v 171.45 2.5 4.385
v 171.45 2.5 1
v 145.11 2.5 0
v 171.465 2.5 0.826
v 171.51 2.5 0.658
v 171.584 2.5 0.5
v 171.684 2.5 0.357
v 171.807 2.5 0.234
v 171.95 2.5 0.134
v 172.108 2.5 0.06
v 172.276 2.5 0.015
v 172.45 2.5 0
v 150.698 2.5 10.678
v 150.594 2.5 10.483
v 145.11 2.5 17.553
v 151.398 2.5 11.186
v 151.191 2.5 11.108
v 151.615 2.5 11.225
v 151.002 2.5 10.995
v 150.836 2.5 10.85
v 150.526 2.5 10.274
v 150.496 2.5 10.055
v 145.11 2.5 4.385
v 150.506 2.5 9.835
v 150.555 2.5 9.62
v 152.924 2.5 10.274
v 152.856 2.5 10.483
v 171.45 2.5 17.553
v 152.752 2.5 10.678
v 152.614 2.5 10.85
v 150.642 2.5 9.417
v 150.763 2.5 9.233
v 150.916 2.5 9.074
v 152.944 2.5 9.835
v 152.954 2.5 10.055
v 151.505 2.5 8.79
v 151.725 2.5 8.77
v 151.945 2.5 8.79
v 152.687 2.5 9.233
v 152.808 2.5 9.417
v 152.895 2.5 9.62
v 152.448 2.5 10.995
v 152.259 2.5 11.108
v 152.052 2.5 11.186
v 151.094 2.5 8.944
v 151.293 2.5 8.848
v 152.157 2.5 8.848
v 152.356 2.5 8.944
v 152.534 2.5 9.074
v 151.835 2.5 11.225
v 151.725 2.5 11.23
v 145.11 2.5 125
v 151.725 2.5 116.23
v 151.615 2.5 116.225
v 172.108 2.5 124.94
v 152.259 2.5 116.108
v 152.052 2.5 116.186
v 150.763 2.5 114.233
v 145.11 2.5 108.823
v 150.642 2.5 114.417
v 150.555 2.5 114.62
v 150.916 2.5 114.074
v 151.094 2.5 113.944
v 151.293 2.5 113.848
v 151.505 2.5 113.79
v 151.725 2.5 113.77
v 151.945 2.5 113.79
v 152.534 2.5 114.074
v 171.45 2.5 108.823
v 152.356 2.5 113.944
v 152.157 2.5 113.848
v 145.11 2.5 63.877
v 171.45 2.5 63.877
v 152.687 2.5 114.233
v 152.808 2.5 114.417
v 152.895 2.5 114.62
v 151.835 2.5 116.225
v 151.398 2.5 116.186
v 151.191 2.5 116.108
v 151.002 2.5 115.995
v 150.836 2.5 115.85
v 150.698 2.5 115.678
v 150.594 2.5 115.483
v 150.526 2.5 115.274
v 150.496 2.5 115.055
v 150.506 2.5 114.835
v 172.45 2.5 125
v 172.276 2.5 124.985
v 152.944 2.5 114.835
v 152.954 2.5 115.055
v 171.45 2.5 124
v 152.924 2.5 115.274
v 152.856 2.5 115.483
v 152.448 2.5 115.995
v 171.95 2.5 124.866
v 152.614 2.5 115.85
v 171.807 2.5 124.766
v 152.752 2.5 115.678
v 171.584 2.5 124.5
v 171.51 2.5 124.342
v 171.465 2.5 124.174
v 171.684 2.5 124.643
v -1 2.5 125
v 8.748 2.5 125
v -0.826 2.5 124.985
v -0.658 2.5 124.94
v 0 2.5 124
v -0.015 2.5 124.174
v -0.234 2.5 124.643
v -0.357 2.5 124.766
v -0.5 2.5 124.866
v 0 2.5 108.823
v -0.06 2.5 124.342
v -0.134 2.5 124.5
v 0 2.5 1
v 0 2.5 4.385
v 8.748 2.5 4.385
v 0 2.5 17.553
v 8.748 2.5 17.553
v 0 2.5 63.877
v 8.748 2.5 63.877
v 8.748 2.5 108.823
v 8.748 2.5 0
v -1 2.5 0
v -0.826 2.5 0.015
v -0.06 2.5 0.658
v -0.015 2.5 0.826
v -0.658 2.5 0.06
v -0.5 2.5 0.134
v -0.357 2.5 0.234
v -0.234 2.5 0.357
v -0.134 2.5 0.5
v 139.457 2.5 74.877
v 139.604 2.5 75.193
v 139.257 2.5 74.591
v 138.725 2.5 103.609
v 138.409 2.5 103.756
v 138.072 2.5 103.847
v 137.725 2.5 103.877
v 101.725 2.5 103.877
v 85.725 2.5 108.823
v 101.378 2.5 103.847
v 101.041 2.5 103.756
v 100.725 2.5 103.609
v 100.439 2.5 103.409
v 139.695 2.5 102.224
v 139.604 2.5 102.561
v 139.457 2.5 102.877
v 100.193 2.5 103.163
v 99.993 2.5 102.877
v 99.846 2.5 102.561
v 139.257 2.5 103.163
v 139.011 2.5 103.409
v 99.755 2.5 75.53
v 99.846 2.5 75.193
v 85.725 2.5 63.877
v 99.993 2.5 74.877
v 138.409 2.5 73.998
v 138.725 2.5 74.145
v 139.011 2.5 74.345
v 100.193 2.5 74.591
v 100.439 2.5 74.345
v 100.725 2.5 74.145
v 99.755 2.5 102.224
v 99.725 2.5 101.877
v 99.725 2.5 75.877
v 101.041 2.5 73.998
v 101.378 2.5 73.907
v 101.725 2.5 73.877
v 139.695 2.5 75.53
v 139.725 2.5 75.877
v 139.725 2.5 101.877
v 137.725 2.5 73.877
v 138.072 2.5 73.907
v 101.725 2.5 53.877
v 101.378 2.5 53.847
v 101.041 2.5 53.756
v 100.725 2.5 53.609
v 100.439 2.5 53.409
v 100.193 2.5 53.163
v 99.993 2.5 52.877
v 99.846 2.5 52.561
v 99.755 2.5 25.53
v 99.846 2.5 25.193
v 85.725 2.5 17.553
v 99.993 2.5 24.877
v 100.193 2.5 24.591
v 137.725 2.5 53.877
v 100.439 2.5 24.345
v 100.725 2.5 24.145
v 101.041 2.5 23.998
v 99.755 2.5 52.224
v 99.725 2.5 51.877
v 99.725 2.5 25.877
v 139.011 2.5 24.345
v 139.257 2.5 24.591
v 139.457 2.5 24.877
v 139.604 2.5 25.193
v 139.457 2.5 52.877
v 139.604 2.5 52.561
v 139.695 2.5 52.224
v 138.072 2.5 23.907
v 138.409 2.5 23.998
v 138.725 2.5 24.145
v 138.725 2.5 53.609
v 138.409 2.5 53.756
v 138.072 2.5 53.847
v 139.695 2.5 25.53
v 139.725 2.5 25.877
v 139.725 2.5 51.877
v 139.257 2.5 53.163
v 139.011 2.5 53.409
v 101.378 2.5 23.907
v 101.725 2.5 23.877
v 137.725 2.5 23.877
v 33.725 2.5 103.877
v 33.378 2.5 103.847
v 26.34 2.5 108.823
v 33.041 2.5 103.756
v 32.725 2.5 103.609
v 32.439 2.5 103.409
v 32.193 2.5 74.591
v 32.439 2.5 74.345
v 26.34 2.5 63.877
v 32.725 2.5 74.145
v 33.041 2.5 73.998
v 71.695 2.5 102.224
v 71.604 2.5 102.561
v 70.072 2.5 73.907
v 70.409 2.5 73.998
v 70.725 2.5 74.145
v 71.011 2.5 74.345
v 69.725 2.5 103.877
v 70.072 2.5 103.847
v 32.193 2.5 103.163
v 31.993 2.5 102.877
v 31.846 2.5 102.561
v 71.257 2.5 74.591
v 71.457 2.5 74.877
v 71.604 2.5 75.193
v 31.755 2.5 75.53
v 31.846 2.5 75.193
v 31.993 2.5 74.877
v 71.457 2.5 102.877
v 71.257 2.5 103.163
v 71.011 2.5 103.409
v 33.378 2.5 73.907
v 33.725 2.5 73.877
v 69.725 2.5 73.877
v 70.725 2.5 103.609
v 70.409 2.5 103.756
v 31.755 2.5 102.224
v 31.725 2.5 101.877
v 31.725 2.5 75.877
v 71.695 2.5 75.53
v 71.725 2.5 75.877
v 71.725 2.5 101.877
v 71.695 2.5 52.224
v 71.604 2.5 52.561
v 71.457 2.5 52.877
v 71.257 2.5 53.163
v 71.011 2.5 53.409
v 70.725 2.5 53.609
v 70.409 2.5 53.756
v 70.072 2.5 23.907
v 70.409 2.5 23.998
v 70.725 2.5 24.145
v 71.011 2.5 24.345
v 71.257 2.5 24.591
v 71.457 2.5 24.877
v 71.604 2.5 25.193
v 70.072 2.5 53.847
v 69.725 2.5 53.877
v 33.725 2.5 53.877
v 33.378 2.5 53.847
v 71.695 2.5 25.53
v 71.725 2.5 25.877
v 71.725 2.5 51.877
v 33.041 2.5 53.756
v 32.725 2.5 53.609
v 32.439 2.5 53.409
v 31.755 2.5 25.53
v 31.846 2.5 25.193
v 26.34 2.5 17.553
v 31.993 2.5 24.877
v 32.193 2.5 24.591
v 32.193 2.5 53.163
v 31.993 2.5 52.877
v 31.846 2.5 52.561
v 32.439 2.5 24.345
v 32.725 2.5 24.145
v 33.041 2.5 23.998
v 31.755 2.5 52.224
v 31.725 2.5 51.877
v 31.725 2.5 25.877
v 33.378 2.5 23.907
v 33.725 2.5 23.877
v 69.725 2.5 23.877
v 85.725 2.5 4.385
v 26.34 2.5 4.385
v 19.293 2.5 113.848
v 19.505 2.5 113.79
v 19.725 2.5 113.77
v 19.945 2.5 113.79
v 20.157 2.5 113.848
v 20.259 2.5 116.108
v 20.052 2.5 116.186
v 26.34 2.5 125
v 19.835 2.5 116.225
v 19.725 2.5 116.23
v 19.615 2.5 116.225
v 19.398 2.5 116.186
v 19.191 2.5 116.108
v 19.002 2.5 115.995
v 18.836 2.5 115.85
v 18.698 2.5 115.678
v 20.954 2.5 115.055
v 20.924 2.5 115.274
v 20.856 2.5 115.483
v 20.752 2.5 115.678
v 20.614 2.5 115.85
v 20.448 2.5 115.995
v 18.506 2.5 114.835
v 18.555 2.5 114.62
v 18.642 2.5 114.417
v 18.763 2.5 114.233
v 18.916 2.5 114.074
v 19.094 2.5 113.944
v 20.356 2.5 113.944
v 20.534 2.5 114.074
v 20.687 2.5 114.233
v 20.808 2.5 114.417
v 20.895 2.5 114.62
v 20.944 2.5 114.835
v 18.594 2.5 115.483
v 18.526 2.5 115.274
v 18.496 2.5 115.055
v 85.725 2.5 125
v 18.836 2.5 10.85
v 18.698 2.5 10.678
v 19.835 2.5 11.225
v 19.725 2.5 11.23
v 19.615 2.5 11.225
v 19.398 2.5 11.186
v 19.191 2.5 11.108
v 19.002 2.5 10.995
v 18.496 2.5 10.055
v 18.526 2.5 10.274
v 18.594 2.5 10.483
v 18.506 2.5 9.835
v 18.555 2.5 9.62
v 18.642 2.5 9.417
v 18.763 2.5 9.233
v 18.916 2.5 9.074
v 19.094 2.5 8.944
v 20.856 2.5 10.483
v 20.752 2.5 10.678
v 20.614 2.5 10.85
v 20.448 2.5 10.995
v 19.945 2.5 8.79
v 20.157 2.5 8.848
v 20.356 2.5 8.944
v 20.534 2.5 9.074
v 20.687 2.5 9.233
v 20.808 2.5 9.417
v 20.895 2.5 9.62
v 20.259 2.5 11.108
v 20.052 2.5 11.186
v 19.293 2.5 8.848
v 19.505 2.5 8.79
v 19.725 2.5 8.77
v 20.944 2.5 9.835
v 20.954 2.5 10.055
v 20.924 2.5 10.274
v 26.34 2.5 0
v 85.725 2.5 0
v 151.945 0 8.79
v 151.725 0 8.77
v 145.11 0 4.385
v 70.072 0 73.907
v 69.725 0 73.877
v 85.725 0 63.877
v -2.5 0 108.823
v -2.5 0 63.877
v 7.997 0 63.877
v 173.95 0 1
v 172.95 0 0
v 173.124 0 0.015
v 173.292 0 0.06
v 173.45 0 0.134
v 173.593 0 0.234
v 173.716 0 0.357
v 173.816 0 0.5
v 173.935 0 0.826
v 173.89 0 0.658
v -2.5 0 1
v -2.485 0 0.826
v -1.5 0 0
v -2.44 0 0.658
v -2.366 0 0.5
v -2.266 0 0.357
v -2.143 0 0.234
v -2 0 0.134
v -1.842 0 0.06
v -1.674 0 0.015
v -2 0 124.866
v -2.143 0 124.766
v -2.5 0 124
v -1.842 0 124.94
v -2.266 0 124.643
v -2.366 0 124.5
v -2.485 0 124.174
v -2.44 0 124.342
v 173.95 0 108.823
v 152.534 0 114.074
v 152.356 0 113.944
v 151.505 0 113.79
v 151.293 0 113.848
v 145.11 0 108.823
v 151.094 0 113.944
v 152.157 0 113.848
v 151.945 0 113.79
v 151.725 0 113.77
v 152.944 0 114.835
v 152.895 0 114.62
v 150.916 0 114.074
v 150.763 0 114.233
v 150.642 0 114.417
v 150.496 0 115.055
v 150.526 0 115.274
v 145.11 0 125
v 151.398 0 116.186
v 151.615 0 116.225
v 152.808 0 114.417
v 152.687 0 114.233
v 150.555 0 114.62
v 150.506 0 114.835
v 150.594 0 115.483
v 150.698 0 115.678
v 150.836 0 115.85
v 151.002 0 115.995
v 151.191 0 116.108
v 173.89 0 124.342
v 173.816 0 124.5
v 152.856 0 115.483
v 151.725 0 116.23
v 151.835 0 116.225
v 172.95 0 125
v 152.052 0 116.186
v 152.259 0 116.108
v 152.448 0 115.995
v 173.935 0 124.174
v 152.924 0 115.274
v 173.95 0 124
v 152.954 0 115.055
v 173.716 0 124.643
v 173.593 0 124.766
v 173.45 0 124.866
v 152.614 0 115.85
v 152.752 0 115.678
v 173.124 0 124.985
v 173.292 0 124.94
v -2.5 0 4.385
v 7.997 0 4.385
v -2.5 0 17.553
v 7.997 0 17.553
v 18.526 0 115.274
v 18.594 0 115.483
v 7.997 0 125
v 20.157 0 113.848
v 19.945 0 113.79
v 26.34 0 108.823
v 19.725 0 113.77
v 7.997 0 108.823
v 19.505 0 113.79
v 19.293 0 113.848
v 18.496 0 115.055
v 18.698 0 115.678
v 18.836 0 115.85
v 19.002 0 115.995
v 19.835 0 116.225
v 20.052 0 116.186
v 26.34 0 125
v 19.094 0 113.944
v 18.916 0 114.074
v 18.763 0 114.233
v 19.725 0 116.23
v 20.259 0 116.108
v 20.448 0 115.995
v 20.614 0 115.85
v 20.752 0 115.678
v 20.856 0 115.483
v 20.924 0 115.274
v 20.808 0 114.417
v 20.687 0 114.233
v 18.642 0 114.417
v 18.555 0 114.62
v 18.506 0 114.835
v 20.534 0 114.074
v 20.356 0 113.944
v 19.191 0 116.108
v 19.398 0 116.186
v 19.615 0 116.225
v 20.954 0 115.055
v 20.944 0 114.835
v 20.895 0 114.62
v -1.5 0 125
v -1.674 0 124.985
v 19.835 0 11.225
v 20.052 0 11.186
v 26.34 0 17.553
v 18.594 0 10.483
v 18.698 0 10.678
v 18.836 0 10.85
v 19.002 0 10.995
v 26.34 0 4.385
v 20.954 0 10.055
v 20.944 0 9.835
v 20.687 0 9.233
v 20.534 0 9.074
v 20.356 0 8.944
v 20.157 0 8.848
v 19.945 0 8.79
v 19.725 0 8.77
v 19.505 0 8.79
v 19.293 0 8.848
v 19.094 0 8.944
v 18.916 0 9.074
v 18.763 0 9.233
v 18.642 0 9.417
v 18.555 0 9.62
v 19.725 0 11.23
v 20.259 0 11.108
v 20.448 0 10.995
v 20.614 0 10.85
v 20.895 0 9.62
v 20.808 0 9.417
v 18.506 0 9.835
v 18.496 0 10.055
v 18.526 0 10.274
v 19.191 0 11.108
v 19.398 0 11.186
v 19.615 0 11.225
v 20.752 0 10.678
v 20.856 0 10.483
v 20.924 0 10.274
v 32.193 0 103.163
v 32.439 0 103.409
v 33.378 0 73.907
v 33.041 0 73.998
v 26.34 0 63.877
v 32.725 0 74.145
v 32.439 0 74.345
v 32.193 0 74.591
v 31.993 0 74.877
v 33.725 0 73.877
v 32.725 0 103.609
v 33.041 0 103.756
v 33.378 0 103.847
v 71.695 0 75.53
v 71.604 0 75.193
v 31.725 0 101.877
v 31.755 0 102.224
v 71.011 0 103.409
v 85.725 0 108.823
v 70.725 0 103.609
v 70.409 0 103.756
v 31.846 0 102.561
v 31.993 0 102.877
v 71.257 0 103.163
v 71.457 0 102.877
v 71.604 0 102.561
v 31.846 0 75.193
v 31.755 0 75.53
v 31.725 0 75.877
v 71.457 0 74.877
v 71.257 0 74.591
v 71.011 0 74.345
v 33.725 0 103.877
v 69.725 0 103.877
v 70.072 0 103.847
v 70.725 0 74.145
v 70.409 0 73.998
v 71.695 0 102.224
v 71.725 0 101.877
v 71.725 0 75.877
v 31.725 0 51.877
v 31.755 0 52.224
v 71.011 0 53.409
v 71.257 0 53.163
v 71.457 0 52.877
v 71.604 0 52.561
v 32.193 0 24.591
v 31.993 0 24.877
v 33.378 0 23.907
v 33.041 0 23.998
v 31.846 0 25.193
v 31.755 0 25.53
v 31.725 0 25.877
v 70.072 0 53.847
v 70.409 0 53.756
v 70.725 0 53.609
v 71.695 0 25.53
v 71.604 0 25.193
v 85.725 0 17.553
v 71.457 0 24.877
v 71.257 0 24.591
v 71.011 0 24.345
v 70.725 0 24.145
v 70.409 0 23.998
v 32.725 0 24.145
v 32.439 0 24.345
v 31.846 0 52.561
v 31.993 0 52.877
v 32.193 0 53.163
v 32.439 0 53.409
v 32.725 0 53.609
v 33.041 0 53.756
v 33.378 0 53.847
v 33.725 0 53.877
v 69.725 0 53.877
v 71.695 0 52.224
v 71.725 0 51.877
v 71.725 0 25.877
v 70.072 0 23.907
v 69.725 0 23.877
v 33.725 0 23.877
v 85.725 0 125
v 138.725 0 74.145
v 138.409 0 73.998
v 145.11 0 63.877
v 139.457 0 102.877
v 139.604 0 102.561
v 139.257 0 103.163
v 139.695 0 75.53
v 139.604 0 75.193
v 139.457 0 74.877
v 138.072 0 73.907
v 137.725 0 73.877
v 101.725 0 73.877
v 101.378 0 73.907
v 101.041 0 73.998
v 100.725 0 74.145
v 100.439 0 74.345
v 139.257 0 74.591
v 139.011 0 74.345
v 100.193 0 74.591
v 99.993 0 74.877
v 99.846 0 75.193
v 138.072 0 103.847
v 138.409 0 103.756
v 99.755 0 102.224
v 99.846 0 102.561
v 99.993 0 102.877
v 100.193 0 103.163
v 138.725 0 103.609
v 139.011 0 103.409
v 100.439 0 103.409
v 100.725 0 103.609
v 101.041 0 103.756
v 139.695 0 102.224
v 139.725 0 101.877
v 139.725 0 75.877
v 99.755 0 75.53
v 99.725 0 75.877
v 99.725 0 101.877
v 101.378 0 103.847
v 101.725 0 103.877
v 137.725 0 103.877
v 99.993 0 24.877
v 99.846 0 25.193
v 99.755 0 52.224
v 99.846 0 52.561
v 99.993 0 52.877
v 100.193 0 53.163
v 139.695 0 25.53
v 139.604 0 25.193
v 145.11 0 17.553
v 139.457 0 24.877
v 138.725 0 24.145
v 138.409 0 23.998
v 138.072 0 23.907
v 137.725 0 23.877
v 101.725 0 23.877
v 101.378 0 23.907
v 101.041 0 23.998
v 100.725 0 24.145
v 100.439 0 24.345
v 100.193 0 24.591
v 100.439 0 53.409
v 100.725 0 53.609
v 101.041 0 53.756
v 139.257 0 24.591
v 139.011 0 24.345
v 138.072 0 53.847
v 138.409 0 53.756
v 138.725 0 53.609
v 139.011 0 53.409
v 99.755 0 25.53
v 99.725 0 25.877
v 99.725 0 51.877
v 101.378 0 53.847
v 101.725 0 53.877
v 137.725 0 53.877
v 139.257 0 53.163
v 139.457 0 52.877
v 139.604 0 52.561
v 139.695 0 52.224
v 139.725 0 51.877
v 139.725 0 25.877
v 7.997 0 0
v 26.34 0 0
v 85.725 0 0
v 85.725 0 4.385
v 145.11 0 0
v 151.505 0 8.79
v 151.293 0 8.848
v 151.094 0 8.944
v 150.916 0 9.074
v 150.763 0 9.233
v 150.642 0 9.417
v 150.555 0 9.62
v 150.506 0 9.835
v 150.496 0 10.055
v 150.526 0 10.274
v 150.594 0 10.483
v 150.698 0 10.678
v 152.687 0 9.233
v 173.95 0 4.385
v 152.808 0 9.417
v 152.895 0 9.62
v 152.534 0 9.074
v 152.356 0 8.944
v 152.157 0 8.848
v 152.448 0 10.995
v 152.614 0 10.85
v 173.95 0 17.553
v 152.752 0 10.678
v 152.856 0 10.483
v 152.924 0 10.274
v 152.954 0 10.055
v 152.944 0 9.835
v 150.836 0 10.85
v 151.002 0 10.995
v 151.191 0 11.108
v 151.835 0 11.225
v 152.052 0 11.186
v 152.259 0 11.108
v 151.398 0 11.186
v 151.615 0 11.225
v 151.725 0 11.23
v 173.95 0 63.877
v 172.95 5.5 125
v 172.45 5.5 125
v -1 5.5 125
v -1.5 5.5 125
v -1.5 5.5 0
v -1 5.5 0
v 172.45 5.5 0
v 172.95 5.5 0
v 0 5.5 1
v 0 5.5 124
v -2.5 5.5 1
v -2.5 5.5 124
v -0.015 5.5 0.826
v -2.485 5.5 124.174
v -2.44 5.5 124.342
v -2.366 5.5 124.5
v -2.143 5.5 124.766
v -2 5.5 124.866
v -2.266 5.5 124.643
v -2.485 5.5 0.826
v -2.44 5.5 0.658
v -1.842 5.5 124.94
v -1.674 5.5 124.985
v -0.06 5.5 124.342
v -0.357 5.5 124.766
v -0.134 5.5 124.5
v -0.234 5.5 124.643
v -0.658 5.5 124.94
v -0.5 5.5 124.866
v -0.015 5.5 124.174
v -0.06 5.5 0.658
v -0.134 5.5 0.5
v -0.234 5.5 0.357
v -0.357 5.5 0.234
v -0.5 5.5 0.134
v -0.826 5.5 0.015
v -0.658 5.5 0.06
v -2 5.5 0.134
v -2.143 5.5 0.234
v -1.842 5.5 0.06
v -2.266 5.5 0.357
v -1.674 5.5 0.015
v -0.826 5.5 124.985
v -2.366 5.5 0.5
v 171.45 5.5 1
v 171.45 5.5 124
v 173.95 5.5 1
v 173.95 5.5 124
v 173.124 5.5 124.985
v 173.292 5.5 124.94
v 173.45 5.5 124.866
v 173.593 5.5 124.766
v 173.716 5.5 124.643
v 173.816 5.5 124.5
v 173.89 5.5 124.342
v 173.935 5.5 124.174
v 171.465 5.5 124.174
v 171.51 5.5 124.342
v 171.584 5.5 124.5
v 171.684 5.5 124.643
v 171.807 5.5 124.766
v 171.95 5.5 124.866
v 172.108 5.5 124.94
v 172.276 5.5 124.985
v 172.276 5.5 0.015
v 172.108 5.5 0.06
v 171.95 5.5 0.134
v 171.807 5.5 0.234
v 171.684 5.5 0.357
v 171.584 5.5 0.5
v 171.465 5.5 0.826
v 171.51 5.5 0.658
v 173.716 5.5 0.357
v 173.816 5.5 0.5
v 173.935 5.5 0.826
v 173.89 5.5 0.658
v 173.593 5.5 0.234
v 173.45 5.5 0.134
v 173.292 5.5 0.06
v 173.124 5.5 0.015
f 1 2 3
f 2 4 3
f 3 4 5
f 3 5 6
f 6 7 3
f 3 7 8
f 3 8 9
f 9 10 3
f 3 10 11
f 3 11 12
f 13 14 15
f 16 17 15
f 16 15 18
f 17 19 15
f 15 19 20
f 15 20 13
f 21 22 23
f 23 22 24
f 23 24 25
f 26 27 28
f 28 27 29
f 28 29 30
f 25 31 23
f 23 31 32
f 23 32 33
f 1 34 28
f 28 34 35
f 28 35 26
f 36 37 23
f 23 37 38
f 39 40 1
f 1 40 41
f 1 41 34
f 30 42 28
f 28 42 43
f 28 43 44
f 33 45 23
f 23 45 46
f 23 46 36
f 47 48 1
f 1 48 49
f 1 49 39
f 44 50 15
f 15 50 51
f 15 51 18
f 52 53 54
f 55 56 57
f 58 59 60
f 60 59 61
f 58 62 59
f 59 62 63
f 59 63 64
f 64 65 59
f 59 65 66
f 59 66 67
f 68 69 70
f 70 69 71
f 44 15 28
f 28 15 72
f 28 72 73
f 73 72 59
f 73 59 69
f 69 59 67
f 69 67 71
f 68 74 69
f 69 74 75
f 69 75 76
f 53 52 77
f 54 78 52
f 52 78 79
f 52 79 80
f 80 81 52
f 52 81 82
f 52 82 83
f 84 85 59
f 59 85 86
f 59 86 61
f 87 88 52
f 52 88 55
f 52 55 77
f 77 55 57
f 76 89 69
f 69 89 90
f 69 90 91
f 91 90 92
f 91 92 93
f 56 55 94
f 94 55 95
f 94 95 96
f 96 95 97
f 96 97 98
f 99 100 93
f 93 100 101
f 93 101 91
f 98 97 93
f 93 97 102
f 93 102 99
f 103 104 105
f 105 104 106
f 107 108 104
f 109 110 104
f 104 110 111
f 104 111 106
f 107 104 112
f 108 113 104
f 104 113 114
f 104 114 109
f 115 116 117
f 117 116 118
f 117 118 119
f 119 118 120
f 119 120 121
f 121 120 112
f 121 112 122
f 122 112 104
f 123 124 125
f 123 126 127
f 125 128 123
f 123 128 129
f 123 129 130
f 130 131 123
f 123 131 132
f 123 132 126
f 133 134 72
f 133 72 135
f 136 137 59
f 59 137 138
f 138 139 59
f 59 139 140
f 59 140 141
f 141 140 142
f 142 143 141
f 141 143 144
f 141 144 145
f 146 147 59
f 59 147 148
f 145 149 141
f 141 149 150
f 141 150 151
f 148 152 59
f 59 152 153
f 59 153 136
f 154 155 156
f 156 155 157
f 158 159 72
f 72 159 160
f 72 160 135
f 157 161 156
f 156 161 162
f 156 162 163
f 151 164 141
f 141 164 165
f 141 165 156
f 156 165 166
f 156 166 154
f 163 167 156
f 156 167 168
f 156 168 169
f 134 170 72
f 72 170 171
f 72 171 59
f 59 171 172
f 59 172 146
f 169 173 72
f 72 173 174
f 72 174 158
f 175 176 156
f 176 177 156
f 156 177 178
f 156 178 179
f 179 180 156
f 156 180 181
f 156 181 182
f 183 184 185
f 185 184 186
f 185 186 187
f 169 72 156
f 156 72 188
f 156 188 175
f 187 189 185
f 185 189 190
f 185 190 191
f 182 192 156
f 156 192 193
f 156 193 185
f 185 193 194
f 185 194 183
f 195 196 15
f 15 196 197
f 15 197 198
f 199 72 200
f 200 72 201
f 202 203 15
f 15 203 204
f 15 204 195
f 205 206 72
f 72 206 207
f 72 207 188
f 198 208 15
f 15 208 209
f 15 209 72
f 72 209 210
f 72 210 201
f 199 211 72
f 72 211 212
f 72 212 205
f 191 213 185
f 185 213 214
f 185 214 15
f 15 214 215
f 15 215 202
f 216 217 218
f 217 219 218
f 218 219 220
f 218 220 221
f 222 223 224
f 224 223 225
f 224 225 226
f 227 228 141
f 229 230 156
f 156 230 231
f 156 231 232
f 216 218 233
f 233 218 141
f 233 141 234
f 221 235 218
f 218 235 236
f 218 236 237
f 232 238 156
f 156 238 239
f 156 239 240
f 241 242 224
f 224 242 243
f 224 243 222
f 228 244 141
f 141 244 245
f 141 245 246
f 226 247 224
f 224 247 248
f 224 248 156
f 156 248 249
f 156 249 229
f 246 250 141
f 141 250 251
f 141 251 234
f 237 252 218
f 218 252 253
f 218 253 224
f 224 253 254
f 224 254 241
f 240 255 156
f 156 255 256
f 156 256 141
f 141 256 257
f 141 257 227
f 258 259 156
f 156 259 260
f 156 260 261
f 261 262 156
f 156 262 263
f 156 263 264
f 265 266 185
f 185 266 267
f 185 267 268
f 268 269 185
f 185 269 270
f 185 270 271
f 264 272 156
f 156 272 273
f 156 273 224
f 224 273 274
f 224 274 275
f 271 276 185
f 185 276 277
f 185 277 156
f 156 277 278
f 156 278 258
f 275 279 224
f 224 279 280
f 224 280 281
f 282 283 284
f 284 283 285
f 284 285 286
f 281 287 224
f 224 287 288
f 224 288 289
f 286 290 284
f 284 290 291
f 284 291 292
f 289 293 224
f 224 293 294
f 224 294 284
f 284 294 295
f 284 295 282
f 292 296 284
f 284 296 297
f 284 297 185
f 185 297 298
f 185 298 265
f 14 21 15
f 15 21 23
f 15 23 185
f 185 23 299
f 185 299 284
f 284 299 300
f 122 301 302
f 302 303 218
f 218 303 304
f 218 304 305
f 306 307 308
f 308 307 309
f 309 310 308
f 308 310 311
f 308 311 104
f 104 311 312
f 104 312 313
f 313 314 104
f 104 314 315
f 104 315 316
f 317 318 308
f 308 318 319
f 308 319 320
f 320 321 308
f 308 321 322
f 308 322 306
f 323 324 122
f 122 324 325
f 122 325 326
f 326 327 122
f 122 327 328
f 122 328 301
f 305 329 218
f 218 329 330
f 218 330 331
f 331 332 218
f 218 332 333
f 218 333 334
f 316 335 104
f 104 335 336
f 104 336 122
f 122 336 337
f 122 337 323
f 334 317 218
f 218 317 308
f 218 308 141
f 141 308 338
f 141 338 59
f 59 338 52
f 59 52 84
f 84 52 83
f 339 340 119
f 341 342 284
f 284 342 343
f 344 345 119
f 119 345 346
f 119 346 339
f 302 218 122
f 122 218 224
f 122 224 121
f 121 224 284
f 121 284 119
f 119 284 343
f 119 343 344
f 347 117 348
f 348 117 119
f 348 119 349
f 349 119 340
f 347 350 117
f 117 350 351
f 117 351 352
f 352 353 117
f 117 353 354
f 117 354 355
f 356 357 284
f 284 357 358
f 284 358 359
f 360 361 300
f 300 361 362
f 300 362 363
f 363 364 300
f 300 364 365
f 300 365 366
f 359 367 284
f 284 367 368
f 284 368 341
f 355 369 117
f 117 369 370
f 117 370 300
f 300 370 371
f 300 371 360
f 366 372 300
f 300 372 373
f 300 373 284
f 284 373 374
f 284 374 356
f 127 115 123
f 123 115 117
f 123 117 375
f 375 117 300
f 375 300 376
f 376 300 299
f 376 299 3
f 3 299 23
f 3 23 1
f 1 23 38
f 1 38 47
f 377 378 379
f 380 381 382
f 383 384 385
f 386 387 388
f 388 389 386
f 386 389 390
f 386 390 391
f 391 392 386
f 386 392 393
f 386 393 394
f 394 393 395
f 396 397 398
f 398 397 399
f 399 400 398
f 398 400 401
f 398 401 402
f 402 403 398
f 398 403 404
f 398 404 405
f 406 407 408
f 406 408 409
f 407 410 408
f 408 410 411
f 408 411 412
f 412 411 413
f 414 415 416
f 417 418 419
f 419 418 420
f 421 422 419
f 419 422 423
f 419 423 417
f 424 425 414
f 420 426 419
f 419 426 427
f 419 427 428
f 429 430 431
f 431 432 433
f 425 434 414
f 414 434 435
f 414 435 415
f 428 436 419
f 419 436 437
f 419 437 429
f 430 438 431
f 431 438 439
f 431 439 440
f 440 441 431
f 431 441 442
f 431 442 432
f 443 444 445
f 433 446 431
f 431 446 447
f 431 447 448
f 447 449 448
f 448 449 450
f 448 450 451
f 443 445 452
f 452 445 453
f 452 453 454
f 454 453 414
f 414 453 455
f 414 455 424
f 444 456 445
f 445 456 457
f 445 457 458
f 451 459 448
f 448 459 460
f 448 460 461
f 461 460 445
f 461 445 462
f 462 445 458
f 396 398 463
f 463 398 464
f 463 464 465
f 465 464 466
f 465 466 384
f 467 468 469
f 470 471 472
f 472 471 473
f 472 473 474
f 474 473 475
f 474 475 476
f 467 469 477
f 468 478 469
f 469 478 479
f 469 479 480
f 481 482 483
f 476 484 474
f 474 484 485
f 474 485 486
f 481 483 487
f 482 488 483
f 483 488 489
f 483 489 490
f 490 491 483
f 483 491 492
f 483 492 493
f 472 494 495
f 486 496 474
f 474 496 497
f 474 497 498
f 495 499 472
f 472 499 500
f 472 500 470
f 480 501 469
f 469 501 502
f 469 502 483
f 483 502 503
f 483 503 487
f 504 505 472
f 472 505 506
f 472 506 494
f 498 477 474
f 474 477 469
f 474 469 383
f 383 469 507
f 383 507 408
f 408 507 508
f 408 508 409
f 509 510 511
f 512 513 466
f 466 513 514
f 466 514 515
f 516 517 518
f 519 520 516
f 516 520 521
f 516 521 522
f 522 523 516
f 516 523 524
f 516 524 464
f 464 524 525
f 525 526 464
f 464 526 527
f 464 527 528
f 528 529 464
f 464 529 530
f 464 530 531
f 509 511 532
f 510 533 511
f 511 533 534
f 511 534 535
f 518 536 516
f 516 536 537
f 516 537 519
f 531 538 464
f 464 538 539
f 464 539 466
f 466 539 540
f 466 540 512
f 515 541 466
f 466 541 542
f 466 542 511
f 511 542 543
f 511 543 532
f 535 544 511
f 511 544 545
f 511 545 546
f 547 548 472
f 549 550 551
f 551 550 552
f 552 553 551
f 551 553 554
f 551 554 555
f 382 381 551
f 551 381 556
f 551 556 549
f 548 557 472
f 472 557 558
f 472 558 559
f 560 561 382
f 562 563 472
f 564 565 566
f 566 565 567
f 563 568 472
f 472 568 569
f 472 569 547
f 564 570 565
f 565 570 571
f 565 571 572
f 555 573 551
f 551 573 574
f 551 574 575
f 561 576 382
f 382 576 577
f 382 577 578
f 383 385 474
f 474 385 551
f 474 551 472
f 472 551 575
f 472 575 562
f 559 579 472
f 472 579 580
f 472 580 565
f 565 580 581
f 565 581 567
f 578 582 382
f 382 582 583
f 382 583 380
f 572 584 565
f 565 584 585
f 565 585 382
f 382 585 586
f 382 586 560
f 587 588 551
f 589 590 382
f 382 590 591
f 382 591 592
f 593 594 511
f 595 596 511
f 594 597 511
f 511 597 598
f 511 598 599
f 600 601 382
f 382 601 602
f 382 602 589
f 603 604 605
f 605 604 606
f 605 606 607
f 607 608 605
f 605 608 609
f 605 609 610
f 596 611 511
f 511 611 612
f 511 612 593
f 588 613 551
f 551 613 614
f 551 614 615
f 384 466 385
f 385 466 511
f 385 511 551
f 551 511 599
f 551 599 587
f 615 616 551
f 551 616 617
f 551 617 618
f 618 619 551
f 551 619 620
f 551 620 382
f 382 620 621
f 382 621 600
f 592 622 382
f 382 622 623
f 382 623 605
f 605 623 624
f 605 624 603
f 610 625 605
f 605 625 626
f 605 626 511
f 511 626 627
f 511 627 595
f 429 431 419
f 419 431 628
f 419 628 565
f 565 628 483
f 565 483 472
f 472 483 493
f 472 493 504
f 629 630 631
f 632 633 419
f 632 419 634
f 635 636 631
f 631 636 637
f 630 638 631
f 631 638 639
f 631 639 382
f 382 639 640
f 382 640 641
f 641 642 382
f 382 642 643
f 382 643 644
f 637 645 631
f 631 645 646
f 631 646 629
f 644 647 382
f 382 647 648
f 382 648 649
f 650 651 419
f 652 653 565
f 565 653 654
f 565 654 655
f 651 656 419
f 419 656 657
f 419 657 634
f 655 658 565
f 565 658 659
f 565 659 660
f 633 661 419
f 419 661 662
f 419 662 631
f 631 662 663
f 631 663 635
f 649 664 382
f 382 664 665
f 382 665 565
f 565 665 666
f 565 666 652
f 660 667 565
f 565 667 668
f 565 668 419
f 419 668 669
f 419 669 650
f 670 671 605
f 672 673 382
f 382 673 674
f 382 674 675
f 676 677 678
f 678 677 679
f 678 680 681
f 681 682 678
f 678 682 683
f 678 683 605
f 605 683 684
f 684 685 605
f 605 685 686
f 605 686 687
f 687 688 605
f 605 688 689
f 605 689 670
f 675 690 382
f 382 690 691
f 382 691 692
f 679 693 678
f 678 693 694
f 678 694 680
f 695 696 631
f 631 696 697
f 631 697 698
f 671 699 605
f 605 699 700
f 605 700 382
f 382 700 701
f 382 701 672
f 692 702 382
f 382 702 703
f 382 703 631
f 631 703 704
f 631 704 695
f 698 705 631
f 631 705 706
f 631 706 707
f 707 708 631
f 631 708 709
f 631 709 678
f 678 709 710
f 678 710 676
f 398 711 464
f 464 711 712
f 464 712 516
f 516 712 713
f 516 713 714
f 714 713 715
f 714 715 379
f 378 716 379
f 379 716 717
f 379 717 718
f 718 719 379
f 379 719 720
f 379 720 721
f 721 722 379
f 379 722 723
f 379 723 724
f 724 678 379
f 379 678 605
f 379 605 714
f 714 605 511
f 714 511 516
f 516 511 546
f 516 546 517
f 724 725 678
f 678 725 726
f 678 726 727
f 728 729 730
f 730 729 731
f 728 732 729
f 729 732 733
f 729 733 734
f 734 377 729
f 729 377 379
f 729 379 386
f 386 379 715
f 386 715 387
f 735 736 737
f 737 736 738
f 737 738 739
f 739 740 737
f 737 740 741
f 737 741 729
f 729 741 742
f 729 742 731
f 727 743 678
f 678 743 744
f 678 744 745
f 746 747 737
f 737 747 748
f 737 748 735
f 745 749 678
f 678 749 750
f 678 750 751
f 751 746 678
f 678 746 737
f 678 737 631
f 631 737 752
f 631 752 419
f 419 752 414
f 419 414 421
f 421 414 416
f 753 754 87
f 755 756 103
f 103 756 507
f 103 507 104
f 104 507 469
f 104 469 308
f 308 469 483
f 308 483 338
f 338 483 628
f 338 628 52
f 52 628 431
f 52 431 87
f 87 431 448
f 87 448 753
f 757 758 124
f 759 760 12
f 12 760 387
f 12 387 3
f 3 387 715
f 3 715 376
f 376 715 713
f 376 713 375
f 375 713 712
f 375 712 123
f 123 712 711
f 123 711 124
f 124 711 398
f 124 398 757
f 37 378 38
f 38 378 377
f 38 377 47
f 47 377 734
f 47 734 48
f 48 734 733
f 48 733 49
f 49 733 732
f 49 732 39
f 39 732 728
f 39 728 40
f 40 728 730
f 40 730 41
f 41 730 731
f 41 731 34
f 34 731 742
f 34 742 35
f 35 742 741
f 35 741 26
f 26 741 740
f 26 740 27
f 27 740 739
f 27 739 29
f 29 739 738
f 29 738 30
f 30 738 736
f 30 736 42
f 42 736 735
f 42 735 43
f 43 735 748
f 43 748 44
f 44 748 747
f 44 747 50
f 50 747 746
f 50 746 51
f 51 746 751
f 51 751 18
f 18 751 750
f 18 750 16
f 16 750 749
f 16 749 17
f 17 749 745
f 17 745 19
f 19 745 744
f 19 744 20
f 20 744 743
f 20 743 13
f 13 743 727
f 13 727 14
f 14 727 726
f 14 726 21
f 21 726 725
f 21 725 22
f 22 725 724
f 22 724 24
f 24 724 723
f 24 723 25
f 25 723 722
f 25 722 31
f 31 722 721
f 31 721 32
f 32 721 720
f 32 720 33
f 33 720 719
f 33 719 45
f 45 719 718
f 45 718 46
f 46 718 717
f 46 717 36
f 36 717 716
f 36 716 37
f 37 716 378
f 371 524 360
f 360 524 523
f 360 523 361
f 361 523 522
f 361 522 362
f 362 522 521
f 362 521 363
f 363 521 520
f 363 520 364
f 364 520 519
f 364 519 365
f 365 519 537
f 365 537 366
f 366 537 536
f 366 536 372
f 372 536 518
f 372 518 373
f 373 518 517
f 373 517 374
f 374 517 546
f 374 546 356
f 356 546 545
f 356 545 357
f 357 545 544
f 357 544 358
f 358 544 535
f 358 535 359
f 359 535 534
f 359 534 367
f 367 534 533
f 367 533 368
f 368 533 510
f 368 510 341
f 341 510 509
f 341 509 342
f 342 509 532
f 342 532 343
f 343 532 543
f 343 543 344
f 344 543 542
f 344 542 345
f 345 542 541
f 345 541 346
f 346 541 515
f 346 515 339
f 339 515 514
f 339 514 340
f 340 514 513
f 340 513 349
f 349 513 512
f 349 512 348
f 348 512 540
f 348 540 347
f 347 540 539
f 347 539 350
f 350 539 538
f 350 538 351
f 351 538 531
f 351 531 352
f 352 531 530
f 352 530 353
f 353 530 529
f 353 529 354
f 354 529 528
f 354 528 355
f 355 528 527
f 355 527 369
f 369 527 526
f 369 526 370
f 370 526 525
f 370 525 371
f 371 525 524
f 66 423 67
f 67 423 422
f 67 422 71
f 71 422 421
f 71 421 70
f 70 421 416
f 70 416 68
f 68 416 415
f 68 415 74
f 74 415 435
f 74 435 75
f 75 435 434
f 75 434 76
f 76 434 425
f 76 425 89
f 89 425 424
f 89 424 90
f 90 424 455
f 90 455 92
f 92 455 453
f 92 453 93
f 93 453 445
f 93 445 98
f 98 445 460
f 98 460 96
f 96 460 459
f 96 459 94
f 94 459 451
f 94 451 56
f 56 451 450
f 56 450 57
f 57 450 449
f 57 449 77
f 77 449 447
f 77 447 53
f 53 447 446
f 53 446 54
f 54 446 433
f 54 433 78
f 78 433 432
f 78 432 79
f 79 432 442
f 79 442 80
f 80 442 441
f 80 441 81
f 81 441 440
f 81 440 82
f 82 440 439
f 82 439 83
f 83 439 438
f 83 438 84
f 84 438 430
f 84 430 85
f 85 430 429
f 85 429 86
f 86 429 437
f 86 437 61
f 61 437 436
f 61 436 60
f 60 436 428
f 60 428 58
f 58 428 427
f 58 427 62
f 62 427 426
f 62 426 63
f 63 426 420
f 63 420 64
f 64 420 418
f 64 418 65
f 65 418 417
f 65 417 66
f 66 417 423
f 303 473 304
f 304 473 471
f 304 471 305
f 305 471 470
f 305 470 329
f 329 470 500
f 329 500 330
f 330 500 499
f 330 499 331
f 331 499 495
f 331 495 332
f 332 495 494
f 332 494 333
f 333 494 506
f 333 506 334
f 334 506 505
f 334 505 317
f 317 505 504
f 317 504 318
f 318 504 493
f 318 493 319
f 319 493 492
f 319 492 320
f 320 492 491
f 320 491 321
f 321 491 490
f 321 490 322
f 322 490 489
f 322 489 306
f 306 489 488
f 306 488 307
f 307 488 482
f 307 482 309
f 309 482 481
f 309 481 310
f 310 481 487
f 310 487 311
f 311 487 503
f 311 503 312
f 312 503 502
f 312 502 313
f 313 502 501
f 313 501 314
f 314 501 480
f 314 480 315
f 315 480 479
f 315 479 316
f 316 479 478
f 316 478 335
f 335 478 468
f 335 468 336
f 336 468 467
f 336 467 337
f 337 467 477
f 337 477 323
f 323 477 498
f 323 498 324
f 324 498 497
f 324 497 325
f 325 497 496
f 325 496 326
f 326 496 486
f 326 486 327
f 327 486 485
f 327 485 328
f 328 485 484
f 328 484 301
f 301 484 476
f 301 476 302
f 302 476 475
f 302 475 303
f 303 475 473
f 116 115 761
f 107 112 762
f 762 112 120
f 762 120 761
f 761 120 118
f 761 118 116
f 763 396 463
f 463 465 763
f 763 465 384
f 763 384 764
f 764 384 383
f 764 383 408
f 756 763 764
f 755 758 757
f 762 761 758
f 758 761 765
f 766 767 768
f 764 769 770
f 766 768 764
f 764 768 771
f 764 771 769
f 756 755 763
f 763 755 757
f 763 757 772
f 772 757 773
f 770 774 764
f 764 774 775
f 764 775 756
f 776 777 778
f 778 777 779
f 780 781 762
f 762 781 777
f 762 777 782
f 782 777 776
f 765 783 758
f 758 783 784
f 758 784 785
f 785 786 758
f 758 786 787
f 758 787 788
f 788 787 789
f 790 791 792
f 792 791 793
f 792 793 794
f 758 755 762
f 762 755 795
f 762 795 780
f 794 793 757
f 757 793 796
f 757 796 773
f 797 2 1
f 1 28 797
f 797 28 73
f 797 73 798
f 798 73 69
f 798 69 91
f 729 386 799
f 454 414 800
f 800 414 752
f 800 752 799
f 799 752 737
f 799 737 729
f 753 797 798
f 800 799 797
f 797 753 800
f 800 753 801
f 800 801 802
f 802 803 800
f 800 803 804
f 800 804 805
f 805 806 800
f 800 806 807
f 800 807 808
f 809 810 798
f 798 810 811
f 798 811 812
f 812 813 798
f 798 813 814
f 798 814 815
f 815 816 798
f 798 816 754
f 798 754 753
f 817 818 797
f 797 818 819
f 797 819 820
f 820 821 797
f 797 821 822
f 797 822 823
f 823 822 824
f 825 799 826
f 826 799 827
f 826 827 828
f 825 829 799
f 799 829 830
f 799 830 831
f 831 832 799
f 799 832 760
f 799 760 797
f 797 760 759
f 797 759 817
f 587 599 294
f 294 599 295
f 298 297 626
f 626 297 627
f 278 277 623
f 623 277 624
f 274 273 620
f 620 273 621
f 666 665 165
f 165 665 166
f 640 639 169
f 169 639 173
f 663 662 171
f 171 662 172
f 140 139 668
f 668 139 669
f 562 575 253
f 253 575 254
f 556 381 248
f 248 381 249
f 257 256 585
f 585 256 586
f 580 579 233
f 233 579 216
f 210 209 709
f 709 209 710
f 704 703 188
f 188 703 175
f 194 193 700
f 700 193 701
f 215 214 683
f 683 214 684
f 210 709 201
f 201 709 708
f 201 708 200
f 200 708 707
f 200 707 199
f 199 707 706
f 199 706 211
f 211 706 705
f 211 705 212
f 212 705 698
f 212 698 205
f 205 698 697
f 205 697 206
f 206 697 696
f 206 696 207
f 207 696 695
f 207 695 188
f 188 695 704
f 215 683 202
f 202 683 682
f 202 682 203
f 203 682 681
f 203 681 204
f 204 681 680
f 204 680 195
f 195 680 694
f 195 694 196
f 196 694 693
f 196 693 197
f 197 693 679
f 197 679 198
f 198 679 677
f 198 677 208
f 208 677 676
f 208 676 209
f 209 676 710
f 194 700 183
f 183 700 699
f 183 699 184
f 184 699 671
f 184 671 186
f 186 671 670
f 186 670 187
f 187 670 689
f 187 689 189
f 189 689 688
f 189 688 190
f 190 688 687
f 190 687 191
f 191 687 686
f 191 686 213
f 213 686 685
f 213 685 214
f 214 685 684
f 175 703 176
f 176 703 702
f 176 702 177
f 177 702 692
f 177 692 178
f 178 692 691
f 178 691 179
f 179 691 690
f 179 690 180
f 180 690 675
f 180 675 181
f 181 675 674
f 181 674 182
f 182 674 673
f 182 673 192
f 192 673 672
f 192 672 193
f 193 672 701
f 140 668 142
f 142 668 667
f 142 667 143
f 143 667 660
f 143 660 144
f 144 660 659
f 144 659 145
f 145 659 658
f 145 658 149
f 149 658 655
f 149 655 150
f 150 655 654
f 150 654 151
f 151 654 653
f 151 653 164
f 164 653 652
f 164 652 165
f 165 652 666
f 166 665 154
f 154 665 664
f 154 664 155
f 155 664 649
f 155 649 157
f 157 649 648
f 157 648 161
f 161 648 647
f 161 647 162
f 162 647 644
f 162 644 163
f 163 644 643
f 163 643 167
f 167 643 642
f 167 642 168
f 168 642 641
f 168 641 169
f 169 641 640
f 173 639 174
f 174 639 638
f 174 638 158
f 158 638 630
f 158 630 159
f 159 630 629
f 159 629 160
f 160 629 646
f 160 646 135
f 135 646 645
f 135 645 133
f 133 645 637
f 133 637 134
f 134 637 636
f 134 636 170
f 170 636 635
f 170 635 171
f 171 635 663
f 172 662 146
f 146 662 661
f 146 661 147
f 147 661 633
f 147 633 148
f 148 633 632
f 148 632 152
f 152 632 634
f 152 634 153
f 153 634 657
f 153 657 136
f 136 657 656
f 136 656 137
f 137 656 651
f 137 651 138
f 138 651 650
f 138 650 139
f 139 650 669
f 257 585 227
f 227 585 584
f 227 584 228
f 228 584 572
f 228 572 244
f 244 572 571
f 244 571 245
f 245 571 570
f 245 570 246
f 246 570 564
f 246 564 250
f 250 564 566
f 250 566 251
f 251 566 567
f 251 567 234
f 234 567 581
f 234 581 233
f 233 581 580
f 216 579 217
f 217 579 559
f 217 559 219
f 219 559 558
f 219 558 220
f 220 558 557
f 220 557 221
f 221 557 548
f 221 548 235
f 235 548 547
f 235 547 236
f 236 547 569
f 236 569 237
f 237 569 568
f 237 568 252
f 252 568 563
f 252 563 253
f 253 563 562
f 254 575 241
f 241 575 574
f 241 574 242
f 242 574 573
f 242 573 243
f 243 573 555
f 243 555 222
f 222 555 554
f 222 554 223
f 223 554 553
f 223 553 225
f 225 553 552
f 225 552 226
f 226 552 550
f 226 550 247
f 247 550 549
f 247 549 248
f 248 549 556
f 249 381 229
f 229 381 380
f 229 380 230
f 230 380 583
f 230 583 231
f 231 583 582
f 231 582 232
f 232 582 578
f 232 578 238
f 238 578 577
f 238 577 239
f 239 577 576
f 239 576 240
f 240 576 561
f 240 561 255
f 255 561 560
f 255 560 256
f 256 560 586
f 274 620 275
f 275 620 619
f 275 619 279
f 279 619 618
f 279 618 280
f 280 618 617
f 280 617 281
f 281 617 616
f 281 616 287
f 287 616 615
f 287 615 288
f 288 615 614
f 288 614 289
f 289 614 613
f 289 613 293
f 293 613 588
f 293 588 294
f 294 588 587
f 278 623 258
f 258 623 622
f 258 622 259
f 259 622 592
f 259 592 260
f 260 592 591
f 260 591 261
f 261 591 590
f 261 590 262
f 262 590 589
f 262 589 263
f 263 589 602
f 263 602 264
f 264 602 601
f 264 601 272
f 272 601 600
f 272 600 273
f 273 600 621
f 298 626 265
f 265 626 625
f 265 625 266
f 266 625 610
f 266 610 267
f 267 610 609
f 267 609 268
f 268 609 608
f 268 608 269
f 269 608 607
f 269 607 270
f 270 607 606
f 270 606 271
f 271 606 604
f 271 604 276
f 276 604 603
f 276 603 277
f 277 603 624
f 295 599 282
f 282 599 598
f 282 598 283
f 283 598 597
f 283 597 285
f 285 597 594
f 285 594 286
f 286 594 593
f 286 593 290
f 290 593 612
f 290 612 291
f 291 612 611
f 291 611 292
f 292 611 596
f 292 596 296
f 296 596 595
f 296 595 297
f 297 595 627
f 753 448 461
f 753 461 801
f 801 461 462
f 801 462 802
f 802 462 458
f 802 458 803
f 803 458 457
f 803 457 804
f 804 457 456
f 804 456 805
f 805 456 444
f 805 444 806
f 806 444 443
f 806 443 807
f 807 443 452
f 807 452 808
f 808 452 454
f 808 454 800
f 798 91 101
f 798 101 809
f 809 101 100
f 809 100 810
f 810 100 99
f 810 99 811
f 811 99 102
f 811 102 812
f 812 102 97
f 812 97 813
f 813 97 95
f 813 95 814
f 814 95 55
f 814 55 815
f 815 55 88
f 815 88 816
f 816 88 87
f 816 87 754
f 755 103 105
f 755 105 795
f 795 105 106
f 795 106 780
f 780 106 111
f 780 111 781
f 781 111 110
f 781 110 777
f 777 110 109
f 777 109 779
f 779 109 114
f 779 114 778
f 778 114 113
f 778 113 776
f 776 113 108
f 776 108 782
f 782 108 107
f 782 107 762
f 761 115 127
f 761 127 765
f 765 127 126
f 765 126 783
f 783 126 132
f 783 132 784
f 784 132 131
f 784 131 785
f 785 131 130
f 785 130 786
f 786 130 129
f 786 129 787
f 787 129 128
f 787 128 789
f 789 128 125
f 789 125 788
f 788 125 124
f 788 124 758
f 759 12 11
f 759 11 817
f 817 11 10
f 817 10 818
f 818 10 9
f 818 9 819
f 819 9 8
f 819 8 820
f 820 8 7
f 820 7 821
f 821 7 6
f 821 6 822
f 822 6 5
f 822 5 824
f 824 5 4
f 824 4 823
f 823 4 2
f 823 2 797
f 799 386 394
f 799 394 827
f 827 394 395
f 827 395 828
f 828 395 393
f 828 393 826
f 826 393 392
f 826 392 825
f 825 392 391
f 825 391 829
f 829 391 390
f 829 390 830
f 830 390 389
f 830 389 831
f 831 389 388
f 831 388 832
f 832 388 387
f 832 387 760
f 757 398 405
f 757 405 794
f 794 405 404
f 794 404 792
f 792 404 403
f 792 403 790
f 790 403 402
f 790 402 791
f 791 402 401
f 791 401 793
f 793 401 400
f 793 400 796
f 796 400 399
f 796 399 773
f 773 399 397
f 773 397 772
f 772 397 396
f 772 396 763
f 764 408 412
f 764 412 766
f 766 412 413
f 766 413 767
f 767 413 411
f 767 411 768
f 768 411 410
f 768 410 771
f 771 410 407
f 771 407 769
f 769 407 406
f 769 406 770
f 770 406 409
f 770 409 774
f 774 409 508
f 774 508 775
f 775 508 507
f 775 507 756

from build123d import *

# Parameters (mm, degrees)
SKETCH1_W                = 171.45
SKETCH1_H                = 125
SKETCH1_R                = 1.23
BOSS_EXTRUDE1_DEPTH      = 2.5
BOSS_EXTRUDE2_DEPTH      = 3
BOSS_EXTRUDE2_DEPTH_BACK = 2.5
SKETCH2_W                = 2.5
SKETCH2_H                = 125
CUT_EXTRUDE1_DEPTH       = 215.225587874
CUT_EXTRUDE1_DEPTH_BACK  = 215.225587874
SKETCH3_W                = 40
SKETCH3_H                = 30
FILLET1_R                = 2
FILLET2_R                = 1


with BuildPart() as part:
    # Sketch1 → Boss-Extrude1 (new body)
    with BuildSketch(Plane(origin=(0, 0, 0), x_dir=(1, 0, 0), z_dir=(0, 1, 0))):
        with Locations((85.725, -62.5)):
            Rectangle(SKETCH1_W, SKETCH1_H)
        with Locations(Location((19.725, -10, 0), (0, 0, 270))):
            Circle(SKETCH1_R, mode=Mode.SUBTRACT)
        with Locations(Location((151.725, -10, 0), (0, 0, 270))):
            Circle(SKETCH1_R, mode=Mode.SUBTRACT)
        with Locations(Location((19.725, -115, 0), (0, 0, 270))):
            Circle(SKETCH1_R, mode=Mode.SUBTRACT)
        with Locations(Location((151.725, -115, 0), (0, 0, 270))):
            Circle(SKETCH1_R, mode=Mode.SUBTRACT)
    extrude(amount=BOSS_EXTRUDE1_DEPTH)

    # Sketch2 → Boss-Extrude2 (add, two sides: drawn at the far end of the back side and taken through both)
    with BuildSketch(Plane(origin=(0, 2.5, 0), x_dir=(1, 0, 0), z_dir=(0, 1, 0)).offset(-BOSS_EXTRUDE2_DEPTH_BACK)):
        with Locations((-1.25, -62.5)):
            Rectangle(SKETCH2_W, SKETCH2_H)
        with Locations((172.7, -62.5)):
            Rectangle(SKETCH2_W, SKETCH2_H)
    extrude(amount=BOSS_EXTRUDE2_DEPTH + BOSS_EXTRUDE2_DEPTH_BACK)

    # Sketch3 → Cut-Extrude1 (cut, two sides: drawn at the far end of the back side and taken through both)
    with BuildSketch(Plane(origin=(0, 2.5, 0), x_dir=(1, 0, 0), z_dir=(0, 1, 0)).offset(-CUT_EXTRUDE1_DEPTH_BACK)):
        with Locations((51.725, -38.876953358)):
            Rectangle(SKETCH3_W, SKETCH3_H)
        with Locations((119.725, -38.876953358)):
            Rectangle(SKETCH3_W, SKETCH3_H)
        with Locations((51.725, -88.876953358)):
            Rectangle(SKETCH3_W, SKETCH3_H)
        with Locations((119.725, -88.876953358)):
            Rectangle(SKETCH3_W, SKETCH3_H)
    extrude(amount=CUT_EXTRUDE1_DEPTH + CUT_EXTRUDE1_DEPTH_BACK, mode=Mode.SUBTRACT)

    # Fillet1
    fillet1_edges = [part.edges().sort_by_distance(p)[0] for p in [
        (71.725, 1.25, 53.876953358),
        (139.725, 1.25, 23.876953358),
        (139.725, 1.25, 53.876953358),
        (99.725, 1.25, 53.876953358),
        (99.725, 1.25, 23.876953358),
        (31.725, 1.25, 103.876953358),
        (31.725, 1.25, 73.876953358),
        (71.725, 1.25, 73.876953358),
        (71.725, 1.25, 103.876953358),
        (99.725, 1.25, 103.876953358),
        (99.725, 1.25, 73.876953358),
        (139.725, 1.25, 73.876953358),
        (139.725, 1.25, 103.876953358),
        (31.725, 1.25, 53.876953358),
        (31.725, 1.25, 23.876953358),
        (71.725, 1.25, 23.876953358),
    ]]
    fillet(fillet1_edges, radius=FILLET1_R)

    # Fillet2
    fillet2_edges = [part.edges().sort_by_distance(p)[0] for p in [
        (0, 4, 0),
        (0, 4, 125),
        (-2.5, 2.75, 125),
        (-2.5, 2.75, 0),
        (171.45, 4, 125),
        (171.45, 4, 0),
        (173.95, 2.75, 0),
        (173.95, 2.75, 125),
    ]]
    fillet(fillet2_edges, radius=FILLET2_R)


solid = part.part
